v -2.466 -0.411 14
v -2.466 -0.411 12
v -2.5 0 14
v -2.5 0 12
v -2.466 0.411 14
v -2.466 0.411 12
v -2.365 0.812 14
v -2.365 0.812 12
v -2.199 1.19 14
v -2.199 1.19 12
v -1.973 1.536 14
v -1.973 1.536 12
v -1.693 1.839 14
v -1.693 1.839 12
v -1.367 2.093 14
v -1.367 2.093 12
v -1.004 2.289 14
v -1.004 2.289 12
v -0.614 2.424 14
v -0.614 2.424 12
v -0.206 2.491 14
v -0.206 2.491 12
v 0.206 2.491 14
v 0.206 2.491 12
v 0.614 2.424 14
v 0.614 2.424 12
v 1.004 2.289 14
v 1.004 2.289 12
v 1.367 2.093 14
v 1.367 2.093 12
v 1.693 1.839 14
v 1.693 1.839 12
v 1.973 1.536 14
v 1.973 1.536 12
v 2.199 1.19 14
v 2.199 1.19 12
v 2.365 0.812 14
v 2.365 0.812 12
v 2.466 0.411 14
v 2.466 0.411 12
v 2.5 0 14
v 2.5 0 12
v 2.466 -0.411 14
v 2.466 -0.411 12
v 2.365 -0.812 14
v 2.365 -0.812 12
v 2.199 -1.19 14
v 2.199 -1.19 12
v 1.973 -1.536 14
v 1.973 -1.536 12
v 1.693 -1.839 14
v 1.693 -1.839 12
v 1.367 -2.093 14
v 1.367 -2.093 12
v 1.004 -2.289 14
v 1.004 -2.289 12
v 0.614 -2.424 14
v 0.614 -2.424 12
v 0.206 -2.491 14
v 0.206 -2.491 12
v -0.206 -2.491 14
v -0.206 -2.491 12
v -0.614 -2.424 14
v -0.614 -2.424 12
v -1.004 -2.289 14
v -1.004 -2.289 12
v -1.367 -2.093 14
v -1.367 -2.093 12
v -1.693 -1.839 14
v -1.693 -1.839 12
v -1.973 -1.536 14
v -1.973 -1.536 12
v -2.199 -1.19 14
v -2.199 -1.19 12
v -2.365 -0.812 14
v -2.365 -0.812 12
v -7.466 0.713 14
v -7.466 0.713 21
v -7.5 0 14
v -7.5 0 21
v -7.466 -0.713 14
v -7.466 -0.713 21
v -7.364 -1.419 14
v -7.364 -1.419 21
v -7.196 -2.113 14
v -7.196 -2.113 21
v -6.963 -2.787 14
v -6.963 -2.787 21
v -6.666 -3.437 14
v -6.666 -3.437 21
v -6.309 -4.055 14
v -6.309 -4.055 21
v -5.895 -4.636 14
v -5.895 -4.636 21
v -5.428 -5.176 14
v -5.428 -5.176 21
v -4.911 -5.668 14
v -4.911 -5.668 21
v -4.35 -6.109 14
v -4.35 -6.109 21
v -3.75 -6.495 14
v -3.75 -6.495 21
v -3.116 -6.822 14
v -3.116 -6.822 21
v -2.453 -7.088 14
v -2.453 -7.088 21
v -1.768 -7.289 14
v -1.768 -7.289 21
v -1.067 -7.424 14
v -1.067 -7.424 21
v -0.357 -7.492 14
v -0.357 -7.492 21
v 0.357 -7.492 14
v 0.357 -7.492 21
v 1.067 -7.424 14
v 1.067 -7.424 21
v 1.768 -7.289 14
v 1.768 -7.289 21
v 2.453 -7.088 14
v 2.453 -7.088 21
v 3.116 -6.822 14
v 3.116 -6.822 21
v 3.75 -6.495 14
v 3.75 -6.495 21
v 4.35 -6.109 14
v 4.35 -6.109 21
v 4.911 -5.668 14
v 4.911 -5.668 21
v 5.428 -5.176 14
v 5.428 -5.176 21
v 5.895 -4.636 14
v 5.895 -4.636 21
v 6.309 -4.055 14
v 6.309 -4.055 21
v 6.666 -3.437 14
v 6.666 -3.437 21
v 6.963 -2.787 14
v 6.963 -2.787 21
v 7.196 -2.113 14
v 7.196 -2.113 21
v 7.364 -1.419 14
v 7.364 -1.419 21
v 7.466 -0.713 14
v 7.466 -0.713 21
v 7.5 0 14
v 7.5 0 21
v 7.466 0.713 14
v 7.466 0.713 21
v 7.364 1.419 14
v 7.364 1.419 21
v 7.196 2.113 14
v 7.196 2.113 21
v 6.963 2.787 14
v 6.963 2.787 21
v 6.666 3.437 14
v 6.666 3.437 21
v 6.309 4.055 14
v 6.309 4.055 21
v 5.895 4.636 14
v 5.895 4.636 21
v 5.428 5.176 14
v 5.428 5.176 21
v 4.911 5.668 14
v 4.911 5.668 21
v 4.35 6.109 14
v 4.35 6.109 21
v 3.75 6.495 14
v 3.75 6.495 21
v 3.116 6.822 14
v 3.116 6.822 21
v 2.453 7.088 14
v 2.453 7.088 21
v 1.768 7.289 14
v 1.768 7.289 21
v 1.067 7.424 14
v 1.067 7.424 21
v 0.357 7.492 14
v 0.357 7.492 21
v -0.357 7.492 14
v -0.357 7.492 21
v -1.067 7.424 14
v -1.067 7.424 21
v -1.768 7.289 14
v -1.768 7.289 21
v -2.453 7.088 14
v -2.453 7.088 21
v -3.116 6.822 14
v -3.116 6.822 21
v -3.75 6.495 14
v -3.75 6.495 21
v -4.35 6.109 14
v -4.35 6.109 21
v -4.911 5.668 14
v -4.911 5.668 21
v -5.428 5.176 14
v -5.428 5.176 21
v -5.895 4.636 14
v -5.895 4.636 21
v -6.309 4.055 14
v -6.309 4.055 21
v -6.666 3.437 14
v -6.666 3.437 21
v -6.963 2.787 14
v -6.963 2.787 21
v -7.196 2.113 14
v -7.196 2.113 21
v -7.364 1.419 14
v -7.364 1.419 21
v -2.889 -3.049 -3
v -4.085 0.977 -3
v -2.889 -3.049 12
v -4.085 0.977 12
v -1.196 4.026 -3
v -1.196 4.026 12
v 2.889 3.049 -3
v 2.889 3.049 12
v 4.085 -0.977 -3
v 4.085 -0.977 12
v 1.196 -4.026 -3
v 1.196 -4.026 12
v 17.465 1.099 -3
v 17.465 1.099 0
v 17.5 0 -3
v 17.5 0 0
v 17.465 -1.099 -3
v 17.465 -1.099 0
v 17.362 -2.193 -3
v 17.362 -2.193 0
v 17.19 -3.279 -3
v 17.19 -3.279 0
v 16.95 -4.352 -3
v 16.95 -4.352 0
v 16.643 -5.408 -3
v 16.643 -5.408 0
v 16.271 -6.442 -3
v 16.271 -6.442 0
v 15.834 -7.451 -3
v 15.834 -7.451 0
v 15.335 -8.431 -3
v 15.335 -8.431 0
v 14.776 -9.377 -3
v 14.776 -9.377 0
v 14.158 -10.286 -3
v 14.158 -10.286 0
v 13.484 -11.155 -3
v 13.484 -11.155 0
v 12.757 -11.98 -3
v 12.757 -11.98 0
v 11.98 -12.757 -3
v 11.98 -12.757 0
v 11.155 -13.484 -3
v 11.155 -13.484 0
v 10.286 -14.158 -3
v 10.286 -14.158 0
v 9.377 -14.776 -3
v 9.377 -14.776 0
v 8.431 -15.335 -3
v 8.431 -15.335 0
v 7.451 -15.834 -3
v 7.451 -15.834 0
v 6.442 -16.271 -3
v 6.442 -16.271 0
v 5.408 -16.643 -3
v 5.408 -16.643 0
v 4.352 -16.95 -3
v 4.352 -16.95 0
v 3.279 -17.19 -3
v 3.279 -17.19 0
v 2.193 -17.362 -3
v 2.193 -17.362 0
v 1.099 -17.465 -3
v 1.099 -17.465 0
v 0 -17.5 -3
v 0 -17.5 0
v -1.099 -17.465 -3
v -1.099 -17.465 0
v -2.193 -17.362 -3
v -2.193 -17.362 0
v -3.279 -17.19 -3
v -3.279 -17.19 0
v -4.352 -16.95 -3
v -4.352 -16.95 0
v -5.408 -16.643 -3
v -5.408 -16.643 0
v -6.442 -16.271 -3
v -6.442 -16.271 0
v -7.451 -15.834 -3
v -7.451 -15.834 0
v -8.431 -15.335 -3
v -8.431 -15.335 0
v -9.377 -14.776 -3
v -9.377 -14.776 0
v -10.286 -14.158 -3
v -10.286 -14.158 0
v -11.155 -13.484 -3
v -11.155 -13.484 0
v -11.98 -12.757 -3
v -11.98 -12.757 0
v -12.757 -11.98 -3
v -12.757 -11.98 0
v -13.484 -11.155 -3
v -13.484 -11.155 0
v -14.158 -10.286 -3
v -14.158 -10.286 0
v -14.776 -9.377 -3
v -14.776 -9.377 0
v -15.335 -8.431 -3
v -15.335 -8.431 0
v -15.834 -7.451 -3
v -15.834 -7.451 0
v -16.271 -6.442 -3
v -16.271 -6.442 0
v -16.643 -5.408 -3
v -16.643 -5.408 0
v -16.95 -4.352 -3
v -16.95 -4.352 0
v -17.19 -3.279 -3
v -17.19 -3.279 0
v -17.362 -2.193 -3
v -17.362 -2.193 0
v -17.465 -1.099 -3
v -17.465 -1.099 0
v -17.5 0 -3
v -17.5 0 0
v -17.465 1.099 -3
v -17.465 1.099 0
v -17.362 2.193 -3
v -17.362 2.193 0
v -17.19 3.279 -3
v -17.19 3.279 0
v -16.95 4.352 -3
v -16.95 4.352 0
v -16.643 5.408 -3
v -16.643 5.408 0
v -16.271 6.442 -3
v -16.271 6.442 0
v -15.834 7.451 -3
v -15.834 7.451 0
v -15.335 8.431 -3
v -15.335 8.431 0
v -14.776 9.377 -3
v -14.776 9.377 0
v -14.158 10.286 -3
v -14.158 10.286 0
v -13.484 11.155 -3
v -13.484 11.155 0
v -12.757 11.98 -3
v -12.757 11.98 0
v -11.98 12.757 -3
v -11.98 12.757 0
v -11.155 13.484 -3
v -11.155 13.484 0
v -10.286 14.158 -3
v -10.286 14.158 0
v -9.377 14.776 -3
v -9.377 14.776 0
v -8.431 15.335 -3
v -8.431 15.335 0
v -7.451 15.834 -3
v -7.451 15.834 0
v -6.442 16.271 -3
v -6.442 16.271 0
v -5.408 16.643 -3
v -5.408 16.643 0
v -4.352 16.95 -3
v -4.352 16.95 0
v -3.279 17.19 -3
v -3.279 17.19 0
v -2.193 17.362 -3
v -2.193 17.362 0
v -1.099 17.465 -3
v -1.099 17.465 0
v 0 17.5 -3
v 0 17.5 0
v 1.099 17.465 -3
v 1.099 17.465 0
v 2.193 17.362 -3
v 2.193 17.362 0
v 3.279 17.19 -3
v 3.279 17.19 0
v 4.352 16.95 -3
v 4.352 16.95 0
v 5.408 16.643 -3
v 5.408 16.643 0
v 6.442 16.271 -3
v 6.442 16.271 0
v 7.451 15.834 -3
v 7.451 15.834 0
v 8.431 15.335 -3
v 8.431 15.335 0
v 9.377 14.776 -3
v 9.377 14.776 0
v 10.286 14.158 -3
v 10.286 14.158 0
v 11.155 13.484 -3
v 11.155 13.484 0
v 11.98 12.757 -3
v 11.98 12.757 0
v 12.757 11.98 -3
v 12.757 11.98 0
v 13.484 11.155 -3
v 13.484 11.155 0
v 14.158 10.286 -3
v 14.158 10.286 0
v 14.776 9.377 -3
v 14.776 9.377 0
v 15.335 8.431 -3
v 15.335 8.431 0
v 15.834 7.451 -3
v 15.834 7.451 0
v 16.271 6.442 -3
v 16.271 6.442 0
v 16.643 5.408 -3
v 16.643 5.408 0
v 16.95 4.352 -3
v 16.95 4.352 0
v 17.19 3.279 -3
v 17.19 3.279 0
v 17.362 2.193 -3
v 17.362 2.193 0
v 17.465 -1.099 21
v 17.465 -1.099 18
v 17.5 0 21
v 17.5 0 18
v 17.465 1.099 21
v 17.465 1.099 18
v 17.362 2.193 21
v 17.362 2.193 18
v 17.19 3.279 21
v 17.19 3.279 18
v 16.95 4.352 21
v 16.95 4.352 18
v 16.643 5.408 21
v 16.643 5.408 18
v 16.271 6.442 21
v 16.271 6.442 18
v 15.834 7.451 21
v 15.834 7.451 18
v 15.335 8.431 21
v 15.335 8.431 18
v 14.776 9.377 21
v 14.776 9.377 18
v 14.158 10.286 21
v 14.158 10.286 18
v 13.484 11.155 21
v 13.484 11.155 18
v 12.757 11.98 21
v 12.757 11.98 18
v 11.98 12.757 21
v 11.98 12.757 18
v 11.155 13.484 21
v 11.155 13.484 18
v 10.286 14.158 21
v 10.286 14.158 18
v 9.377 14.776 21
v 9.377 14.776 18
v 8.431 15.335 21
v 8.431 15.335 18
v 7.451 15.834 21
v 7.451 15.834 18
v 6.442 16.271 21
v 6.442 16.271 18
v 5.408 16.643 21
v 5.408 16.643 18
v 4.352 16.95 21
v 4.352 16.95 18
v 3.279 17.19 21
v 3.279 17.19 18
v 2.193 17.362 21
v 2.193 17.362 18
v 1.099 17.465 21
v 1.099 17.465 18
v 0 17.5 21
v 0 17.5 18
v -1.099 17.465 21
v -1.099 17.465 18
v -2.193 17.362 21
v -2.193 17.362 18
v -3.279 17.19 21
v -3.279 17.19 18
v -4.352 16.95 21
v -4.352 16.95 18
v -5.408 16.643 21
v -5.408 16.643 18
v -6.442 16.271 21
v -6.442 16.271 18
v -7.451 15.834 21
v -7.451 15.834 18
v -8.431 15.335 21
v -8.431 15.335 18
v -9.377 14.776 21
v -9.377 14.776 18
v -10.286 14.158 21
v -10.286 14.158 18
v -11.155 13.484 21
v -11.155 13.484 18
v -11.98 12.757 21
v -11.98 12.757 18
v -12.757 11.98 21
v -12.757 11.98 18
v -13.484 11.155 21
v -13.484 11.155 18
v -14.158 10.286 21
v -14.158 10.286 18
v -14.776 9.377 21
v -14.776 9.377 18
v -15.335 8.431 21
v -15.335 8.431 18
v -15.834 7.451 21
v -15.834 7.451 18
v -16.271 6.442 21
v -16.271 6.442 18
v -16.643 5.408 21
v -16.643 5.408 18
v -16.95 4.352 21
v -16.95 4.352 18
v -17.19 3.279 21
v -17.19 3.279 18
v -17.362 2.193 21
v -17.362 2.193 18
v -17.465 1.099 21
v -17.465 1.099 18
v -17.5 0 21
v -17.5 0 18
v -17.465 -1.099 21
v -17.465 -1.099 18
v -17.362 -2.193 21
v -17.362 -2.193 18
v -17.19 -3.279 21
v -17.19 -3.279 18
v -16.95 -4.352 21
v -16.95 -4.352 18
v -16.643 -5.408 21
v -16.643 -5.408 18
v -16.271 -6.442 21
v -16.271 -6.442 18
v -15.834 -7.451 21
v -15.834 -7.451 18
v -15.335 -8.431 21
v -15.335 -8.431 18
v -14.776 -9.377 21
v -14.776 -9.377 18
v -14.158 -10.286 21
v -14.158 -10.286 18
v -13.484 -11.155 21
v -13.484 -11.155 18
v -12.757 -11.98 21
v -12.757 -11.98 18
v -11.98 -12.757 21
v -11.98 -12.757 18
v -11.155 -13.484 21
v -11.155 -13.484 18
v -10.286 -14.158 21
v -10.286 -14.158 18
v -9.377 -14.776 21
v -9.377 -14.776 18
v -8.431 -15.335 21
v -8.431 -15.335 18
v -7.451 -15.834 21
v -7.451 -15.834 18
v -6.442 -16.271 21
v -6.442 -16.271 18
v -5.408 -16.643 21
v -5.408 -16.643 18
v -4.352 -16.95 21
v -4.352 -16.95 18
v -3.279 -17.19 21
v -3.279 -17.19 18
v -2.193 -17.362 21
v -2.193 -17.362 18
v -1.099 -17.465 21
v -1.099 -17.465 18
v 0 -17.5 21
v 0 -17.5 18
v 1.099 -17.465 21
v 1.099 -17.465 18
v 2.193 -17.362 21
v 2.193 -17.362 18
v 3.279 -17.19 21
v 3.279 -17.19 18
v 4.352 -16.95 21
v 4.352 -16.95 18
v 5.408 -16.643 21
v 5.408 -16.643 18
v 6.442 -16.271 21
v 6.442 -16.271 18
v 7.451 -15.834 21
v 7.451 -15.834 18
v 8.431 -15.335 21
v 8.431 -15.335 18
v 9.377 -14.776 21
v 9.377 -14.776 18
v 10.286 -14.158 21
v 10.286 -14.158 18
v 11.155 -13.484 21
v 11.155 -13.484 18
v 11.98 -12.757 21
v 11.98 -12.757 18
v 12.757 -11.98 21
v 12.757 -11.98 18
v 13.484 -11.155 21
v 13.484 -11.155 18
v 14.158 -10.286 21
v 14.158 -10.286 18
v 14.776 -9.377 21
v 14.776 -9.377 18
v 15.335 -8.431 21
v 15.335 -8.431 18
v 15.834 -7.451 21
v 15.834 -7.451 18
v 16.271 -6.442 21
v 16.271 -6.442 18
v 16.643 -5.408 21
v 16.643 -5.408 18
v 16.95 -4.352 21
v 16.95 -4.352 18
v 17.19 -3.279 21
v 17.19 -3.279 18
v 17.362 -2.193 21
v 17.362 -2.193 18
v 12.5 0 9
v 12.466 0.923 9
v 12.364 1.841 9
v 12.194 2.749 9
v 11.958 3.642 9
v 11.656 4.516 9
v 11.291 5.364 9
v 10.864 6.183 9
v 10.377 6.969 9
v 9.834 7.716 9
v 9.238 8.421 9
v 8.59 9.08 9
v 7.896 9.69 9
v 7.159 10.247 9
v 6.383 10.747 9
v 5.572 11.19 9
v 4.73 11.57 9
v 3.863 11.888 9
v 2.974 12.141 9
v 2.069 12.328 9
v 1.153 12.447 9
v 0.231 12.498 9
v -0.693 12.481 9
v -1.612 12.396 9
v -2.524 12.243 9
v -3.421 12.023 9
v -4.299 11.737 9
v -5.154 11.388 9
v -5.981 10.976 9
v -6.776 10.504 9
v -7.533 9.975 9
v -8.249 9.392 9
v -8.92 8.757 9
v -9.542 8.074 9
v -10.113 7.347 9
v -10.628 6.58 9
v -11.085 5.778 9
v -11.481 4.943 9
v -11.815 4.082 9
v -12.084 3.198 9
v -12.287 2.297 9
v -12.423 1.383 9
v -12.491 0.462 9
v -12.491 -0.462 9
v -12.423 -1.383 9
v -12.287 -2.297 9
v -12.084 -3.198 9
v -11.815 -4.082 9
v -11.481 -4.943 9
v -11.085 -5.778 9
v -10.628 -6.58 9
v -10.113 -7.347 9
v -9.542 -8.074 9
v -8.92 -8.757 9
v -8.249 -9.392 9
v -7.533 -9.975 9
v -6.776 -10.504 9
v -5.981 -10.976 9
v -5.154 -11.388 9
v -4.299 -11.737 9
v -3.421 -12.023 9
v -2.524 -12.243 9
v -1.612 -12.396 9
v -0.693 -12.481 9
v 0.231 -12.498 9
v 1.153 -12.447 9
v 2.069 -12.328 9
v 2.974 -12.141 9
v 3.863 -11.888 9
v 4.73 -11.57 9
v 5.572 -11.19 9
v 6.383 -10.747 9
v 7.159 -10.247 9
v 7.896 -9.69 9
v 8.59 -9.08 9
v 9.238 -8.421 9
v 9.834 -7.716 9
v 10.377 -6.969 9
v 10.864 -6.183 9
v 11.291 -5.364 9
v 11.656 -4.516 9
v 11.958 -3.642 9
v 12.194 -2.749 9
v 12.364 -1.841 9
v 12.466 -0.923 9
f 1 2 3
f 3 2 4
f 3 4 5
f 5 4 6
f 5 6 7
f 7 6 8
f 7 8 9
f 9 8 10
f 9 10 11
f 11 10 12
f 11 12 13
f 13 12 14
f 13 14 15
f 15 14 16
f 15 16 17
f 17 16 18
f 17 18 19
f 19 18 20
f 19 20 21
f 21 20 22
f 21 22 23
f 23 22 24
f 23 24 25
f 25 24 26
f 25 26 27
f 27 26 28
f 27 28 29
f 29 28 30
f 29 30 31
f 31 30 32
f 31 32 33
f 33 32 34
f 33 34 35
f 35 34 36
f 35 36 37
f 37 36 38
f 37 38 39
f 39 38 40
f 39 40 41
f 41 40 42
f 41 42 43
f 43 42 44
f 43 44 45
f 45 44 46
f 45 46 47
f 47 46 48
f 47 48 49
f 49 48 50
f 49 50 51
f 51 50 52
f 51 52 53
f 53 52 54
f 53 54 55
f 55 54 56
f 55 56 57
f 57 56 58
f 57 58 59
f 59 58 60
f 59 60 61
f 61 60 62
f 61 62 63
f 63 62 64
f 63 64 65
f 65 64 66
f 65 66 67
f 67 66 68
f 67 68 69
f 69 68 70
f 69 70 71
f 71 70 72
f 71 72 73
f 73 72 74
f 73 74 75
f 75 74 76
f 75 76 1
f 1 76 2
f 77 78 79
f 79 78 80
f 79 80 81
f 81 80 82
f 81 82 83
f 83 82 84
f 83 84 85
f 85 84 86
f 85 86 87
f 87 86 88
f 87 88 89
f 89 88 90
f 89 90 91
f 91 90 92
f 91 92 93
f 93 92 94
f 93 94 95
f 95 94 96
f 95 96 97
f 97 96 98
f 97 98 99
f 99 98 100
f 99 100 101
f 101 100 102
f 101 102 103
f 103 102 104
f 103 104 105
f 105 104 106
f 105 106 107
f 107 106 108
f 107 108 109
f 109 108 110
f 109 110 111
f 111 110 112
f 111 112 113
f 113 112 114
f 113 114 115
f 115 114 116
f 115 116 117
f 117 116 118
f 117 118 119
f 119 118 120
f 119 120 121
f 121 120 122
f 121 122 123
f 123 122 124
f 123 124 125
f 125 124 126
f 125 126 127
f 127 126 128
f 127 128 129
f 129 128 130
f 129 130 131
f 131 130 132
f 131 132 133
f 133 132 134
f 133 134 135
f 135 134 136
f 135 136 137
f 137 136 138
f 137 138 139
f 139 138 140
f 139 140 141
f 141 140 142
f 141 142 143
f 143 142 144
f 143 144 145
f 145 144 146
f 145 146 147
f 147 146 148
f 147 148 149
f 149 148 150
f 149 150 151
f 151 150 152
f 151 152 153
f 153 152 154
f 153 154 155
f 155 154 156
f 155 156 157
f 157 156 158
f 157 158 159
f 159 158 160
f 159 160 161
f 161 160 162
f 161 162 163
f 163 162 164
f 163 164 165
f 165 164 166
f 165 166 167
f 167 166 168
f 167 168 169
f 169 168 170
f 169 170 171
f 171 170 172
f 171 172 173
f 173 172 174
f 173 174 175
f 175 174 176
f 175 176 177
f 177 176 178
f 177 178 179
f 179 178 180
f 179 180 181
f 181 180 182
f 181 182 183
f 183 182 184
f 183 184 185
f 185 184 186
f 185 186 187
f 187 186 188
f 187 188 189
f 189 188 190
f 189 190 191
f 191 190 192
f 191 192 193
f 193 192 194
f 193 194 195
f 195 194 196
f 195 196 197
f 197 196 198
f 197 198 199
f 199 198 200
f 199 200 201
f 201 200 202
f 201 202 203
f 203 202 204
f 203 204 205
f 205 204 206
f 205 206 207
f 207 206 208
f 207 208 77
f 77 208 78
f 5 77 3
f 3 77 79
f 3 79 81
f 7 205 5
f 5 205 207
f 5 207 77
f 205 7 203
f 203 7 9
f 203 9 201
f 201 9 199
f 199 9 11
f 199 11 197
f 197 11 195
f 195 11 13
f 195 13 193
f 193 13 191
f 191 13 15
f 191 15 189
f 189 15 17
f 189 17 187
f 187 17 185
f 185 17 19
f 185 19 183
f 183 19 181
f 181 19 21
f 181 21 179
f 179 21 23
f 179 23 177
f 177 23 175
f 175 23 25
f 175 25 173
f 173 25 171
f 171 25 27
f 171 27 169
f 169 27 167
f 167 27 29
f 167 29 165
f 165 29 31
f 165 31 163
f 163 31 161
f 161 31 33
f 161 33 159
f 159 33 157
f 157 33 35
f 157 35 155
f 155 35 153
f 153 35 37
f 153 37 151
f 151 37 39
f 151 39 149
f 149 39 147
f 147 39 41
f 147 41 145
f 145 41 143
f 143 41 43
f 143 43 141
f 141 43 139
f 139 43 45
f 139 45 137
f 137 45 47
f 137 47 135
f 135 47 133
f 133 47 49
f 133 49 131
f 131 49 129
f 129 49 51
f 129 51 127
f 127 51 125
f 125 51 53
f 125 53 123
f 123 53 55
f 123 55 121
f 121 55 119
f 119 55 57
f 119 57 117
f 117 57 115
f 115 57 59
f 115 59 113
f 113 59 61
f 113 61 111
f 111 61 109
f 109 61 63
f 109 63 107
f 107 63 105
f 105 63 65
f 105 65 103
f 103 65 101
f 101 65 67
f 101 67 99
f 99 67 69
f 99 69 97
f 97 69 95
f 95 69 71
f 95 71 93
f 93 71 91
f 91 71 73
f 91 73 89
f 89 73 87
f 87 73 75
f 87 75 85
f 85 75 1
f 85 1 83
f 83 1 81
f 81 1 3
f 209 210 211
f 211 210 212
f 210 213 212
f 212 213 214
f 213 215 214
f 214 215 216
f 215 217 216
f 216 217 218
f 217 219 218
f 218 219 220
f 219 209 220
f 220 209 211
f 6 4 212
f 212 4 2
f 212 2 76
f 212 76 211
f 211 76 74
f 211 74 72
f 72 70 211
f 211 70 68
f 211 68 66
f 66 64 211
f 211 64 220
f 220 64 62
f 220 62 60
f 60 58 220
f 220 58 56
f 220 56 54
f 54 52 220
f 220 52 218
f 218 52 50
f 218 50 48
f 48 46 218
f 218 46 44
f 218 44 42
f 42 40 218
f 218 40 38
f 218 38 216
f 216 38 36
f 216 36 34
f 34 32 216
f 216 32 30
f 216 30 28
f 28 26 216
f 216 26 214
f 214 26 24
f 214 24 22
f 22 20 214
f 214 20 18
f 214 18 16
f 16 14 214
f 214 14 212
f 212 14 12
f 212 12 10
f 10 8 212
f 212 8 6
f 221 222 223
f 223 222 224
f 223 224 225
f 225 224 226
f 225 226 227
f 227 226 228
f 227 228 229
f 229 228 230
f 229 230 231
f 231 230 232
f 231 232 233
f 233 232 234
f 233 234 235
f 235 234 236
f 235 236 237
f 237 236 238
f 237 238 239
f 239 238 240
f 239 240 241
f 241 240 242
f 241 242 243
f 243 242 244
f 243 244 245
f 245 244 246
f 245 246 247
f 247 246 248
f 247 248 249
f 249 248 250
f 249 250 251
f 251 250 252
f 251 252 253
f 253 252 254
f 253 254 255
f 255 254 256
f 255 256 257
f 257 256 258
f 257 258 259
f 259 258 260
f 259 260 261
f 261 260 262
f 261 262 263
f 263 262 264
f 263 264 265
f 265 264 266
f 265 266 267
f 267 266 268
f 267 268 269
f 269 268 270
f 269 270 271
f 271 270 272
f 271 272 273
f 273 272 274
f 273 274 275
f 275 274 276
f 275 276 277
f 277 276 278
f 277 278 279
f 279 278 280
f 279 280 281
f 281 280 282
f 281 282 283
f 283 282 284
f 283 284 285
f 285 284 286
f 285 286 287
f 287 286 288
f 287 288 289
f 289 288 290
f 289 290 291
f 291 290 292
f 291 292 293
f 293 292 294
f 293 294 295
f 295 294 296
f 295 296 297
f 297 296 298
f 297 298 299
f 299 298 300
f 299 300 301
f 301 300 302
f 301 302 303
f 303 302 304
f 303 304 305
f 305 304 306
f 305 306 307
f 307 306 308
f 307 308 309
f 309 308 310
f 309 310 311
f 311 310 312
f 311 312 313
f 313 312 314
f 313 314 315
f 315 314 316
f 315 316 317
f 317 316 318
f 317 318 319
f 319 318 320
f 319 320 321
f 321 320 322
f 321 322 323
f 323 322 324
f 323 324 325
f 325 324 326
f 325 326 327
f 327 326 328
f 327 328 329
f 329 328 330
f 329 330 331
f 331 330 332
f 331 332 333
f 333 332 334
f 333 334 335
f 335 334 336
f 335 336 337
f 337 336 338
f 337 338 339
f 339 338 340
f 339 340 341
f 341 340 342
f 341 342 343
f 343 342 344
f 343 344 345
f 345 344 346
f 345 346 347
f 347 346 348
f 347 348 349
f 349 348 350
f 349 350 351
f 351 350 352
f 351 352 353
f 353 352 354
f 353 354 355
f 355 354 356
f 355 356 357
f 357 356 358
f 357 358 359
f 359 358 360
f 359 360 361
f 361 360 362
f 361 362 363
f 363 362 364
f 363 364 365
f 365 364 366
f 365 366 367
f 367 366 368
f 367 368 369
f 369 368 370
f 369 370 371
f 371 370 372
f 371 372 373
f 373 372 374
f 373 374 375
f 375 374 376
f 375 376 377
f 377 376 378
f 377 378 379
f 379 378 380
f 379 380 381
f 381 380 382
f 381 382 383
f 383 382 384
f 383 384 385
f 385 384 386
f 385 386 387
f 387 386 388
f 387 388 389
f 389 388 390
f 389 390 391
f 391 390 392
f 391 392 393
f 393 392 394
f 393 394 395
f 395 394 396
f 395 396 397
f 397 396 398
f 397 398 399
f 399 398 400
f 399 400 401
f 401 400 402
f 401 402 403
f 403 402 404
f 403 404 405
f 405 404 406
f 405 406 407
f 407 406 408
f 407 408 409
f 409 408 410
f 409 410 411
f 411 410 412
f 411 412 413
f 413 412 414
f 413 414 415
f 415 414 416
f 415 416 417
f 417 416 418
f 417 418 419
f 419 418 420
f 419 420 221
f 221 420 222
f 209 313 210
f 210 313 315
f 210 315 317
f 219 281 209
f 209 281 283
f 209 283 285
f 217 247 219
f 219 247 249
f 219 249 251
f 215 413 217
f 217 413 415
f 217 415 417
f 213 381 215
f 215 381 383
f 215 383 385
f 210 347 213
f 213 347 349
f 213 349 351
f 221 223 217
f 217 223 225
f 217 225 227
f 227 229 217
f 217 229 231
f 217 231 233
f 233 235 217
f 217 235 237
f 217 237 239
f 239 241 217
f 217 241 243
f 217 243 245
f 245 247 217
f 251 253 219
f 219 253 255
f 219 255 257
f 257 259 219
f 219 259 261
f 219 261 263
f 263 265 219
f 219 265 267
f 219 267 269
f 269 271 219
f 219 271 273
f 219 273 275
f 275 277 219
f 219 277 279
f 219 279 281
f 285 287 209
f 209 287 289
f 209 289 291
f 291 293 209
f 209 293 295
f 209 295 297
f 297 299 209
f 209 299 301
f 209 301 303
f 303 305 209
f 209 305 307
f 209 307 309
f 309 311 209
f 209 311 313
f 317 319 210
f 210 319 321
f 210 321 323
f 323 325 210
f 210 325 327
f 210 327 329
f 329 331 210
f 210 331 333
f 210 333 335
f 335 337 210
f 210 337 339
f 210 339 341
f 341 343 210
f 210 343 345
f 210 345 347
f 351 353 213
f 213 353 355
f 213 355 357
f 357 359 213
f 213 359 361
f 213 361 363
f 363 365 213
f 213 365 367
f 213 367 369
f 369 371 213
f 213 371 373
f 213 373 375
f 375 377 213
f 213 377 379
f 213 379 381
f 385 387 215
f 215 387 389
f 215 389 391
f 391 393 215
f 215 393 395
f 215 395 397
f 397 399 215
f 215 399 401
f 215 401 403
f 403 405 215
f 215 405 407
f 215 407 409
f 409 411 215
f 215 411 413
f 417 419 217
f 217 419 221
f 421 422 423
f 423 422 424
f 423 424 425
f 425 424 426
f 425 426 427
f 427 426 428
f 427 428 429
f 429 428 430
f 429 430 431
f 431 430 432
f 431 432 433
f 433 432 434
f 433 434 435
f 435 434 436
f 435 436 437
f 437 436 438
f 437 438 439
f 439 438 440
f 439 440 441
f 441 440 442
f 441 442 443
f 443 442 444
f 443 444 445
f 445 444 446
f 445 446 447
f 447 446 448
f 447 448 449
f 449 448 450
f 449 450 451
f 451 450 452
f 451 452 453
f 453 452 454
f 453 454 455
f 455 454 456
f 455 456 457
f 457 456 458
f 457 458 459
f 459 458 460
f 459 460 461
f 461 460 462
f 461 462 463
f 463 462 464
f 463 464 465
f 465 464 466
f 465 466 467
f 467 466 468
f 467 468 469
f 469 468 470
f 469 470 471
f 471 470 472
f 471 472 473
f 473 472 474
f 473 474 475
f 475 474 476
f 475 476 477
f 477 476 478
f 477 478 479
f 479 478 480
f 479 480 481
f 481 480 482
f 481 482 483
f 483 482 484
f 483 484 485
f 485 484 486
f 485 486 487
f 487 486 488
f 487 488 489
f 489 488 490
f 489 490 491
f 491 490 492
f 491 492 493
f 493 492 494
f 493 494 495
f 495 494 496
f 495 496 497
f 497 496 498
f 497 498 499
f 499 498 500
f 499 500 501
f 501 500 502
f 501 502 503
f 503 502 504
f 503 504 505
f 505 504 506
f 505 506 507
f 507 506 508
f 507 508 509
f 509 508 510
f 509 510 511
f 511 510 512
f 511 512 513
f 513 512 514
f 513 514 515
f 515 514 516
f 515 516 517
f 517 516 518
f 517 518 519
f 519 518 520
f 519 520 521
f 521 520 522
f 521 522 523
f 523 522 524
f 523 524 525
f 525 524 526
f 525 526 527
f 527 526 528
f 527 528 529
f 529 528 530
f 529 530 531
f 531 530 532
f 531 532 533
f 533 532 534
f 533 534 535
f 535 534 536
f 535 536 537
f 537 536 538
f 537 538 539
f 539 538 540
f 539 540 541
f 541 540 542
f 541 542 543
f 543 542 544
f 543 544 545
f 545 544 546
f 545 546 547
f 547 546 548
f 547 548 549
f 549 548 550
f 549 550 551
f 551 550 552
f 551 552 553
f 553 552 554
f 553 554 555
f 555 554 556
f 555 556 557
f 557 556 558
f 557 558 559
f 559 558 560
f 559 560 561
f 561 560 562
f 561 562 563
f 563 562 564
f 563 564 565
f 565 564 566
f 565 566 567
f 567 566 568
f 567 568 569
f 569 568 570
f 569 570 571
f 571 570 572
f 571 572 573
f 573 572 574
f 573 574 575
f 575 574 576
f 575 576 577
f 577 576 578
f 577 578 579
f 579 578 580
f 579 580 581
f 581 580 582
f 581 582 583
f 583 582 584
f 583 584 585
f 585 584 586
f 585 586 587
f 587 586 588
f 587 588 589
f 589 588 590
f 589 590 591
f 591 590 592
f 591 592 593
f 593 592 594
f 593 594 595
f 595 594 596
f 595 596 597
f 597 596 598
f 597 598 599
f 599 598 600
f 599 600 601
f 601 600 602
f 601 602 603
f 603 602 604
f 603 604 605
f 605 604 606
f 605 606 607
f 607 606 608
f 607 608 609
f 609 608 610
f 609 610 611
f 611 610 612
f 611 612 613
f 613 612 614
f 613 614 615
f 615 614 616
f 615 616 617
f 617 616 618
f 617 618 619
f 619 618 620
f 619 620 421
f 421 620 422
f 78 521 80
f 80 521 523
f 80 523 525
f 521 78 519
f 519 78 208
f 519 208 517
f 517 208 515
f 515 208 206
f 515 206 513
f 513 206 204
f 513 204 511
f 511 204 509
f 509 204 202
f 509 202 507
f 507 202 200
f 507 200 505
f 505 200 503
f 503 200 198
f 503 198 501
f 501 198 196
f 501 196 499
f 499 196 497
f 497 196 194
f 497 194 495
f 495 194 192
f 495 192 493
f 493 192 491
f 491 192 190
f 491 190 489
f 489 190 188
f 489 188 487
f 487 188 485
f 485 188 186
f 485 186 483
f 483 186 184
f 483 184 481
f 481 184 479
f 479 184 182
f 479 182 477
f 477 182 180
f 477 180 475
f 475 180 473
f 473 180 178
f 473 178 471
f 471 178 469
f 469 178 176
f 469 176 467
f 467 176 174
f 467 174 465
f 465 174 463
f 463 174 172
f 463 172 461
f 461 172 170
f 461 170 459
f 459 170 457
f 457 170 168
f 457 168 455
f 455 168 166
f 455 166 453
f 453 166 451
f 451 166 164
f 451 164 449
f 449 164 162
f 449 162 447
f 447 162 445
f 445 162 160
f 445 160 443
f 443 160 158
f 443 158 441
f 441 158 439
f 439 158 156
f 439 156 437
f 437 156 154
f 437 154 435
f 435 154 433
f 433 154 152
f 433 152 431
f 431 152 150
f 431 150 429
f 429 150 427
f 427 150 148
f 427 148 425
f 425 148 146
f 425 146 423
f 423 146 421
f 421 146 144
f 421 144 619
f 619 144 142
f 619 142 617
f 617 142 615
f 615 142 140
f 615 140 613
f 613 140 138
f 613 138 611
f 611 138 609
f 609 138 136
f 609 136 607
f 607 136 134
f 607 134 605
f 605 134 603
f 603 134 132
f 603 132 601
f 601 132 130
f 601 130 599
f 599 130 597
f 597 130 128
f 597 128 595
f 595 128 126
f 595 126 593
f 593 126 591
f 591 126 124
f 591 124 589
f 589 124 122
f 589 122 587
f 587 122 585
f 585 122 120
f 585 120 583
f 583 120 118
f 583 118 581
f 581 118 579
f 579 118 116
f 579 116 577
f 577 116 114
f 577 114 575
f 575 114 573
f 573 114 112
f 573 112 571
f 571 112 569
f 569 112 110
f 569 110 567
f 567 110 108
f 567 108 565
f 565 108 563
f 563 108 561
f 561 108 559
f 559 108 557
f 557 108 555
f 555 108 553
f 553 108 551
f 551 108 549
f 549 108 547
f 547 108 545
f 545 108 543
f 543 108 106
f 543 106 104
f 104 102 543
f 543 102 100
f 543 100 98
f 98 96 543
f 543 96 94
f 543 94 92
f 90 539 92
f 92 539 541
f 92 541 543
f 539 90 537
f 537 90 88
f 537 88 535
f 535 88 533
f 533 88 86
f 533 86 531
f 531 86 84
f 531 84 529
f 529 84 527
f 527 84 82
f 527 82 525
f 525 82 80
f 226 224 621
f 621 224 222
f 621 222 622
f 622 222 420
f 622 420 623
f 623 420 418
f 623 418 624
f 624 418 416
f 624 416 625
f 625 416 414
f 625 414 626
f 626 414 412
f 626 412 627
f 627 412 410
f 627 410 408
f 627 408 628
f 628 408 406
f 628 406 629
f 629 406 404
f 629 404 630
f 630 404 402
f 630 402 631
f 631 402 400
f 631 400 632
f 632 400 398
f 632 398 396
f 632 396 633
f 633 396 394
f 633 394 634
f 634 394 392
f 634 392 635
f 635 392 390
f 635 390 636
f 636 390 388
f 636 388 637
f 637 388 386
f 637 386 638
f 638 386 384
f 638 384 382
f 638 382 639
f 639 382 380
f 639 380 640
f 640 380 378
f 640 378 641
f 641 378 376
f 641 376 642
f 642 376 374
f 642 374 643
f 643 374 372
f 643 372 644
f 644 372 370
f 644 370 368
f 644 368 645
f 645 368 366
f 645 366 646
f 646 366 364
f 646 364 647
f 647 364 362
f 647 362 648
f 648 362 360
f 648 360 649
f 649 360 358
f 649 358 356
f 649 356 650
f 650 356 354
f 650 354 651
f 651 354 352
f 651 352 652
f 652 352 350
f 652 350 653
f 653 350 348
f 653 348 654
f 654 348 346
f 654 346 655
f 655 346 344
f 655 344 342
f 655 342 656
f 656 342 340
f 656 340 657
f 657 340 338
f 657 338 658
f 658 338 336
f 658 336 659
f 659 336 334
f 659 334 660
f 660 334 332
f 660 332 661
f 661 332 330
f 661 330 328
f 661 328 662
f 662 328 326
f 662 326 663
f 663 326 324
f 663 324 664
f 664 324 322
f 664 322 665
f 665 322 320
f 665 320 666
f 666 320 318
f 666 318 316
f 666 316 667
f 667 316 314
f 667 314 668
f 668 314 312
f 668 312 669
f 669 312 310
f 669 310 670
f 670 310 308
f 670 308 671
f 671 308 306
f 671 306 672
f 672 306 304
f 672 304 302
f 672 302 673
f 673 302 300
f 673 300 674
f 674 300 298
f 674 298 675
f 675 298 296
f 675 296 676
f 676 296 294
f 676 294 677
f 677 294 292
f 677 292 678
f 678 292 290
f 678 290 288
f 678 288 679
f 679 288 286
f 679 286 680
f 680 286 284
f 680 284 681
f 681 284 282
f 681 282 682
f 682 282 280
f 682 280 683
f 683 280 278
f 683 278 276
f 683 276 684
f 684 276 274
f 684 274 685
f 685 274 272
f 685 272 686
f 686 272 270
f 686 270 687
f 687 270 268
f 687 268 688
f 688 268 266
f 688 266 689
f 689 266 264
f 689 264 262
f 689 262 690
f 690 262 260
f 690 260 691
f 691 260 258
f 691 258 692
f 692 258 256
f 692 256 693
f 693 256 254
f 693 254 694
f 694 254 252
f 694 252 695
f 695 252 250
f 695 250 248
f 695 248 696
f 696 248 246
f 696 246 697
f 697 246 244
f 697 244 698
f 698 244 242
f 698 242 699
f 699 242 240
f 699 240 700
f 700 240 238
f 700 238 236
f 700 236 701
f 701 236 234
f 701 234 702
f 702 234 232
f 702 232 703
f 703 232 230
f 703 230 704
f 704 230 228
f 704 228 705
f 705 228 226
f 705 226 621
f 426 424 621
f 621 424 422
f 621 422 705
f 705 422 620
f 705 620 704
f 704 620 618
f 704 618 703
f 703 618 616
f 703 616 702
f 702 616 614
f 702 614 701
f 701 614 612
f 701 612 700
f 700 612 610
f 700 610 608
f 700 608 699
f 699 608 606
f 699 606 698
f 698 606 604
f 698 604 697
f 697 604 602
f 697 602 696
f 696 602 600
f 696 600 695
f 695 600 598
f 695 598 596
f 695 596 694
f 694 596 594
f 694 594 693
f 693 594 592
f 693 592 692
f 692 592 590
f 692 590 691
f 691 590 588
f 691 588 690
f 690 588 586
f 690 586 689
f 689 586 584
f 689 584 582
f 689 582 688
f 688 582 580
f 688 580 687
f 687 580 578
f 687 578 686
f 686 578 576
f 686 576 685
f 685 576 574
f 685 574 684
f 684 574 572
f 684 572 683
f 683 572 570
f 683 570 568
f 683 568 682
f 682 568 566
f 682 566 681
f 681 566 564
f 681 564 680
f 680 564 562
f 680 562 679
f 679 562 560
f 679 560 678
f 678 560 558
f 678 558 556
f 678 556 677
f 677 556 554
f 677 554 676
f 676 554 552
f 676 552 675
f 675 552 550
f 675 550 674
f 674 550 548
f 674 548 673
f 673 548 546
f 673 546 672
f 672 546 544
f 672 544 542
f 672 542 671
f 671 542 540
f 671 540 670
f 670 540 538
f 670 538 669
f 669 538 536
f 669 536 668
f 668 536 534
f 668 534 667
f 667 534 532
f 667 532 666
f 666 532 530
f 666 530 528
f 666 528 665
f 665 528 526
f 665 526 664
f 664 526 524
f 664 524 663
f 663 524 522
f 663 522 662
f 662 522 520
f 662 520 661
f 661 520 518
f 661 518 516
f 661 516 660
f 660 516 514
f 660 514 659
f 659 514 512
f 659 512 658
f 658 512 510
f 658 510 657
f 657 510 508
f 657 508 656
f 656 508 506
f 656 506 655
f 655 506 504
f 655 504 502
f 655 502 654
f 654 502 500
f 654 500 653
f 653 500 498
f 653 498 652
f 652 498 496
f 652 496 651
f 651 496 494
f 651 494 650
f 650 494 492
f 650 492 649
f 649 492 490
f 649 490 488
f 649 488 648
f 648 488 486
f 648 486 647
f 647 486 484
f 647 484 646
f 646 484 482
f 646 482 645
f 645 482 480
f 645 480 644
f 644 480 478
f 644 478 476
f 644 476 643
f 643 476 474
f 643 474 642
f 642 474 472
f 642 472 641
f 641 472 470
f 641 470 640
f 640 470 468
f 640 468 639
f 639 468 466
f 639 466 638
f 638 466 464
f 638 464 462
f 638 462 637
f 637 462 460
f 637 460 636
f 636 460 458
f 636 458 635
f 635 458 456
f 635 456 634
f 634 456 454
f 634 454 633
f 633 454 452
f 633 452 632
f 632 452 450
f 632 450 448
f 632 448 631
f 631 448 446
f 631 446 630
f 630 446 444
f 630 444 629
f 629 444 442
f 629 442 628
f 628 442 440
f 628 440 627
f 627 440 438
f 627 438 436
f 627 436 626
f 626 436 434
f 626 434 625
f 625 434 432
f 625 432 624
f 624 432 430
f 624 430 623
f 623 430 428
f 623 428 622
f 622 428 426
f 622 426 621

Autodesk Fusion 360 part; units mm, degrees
sketch "Sketch1" plane through (0, 0, 0) normal (0, 0, 1) x (1, 0, 0)
  circle A0 centre (0, 0) radius 17.5
  dimension "d1" = 35
ref_plane "WorkPlane1" through (0, 0, 18) normal (0, 0, 1) x (1, 0, 0)
sketch "Sketch2" plane through (0, 0, 18) normal (0, 0, 1) x (1, 0, 0)
  circle A0 centre (0, 0) radius 17.5
  dimension "d3" = 35
ref_plane "WorkPlane2" through (0, 0, 9) normal (0, 0, 1) x (1, 0, 0)
sketch "Sketch3" plane through (0, 0, 9) normal (0, 0, 1) x (1, 0, 0)
  circle A0 centre (0, 0) radius 12.5
  dimension "d5" = 25
loft "Loft1" add profiles "Sketch2", "Sketch3" section 1 section 2
loft "Loft2" add profiles "Sketch1" section 1 section 2 face at (-3.3879, -0.621, 9)
extrude "Extrude1" add 1 faces at (4.4225, -5.9212, 18) along direction (0, 0, 1) blind 3
extrude "Extrude2" add 1 faces at (4.4225, -5.9212, 0) along direction (0, 0, -1) blind 3
sketch "Sketch4" plane through (0, 0, -3) normal (0, 0, -1) x (-1, 0, 0)
  circle A0 centre (0, 0) radius 17.5
  line L0 (2.8885, -3.049) -> (4.0848, 0.977)
  line L1 (4.0848, 0.977) -> (1.1962, 4.026)
  line L2 (1.1962, 4.026) -> (-2.8885, 3.049)
  line L3 (-2.8885, 3.049) -> (-4.0848, -0.977)
  line L4 (-4.0848, -0.977) -> (-1.1962, -4.026)
  line L5 (-1.1962, -4.026) -> (2.8885, -3.049)
  dimension "d10" = 4.2
extrude "Extrude3" cut sketch "Sketch4" against normal blind 15 contours L0 L1 L2 L3 L4 L5
sketch "Sketch5" plane through (0, 0, 21) normal (0, 0, 1) x (1, 0, 0)
  circle A0 centre (0, 0) radius 17.5
sketch "Sketch6" plane through (0, 0, 21) normal (0, 0, 1) x (1, 0, 0)
  circle A0 centre (0, 0) radius 7.5
  dimension "d13" = 15
extrude "Extrude4" cut sketch "Sketch6" against normal blind 7
sketch "Sketch7" plane through (0, 0, 21) normal (0, 0, 1) x (1, 0, 0)
  circle A0 centre (0, 0) radius 7.5
  dimension "d16" = 15
sketch "Sketch8" plane through (0, 0, 21) normal (0, 0, 1) x (1, 0, 0)
  circle A0 centre (0, 0) radius 2.5
  dimension "d17" = 5
extrude "Extrude5" cut sketch "Sketch8" against normal blind 9
equation "d4 = ( 18 / 2 ) * 1 mm"
